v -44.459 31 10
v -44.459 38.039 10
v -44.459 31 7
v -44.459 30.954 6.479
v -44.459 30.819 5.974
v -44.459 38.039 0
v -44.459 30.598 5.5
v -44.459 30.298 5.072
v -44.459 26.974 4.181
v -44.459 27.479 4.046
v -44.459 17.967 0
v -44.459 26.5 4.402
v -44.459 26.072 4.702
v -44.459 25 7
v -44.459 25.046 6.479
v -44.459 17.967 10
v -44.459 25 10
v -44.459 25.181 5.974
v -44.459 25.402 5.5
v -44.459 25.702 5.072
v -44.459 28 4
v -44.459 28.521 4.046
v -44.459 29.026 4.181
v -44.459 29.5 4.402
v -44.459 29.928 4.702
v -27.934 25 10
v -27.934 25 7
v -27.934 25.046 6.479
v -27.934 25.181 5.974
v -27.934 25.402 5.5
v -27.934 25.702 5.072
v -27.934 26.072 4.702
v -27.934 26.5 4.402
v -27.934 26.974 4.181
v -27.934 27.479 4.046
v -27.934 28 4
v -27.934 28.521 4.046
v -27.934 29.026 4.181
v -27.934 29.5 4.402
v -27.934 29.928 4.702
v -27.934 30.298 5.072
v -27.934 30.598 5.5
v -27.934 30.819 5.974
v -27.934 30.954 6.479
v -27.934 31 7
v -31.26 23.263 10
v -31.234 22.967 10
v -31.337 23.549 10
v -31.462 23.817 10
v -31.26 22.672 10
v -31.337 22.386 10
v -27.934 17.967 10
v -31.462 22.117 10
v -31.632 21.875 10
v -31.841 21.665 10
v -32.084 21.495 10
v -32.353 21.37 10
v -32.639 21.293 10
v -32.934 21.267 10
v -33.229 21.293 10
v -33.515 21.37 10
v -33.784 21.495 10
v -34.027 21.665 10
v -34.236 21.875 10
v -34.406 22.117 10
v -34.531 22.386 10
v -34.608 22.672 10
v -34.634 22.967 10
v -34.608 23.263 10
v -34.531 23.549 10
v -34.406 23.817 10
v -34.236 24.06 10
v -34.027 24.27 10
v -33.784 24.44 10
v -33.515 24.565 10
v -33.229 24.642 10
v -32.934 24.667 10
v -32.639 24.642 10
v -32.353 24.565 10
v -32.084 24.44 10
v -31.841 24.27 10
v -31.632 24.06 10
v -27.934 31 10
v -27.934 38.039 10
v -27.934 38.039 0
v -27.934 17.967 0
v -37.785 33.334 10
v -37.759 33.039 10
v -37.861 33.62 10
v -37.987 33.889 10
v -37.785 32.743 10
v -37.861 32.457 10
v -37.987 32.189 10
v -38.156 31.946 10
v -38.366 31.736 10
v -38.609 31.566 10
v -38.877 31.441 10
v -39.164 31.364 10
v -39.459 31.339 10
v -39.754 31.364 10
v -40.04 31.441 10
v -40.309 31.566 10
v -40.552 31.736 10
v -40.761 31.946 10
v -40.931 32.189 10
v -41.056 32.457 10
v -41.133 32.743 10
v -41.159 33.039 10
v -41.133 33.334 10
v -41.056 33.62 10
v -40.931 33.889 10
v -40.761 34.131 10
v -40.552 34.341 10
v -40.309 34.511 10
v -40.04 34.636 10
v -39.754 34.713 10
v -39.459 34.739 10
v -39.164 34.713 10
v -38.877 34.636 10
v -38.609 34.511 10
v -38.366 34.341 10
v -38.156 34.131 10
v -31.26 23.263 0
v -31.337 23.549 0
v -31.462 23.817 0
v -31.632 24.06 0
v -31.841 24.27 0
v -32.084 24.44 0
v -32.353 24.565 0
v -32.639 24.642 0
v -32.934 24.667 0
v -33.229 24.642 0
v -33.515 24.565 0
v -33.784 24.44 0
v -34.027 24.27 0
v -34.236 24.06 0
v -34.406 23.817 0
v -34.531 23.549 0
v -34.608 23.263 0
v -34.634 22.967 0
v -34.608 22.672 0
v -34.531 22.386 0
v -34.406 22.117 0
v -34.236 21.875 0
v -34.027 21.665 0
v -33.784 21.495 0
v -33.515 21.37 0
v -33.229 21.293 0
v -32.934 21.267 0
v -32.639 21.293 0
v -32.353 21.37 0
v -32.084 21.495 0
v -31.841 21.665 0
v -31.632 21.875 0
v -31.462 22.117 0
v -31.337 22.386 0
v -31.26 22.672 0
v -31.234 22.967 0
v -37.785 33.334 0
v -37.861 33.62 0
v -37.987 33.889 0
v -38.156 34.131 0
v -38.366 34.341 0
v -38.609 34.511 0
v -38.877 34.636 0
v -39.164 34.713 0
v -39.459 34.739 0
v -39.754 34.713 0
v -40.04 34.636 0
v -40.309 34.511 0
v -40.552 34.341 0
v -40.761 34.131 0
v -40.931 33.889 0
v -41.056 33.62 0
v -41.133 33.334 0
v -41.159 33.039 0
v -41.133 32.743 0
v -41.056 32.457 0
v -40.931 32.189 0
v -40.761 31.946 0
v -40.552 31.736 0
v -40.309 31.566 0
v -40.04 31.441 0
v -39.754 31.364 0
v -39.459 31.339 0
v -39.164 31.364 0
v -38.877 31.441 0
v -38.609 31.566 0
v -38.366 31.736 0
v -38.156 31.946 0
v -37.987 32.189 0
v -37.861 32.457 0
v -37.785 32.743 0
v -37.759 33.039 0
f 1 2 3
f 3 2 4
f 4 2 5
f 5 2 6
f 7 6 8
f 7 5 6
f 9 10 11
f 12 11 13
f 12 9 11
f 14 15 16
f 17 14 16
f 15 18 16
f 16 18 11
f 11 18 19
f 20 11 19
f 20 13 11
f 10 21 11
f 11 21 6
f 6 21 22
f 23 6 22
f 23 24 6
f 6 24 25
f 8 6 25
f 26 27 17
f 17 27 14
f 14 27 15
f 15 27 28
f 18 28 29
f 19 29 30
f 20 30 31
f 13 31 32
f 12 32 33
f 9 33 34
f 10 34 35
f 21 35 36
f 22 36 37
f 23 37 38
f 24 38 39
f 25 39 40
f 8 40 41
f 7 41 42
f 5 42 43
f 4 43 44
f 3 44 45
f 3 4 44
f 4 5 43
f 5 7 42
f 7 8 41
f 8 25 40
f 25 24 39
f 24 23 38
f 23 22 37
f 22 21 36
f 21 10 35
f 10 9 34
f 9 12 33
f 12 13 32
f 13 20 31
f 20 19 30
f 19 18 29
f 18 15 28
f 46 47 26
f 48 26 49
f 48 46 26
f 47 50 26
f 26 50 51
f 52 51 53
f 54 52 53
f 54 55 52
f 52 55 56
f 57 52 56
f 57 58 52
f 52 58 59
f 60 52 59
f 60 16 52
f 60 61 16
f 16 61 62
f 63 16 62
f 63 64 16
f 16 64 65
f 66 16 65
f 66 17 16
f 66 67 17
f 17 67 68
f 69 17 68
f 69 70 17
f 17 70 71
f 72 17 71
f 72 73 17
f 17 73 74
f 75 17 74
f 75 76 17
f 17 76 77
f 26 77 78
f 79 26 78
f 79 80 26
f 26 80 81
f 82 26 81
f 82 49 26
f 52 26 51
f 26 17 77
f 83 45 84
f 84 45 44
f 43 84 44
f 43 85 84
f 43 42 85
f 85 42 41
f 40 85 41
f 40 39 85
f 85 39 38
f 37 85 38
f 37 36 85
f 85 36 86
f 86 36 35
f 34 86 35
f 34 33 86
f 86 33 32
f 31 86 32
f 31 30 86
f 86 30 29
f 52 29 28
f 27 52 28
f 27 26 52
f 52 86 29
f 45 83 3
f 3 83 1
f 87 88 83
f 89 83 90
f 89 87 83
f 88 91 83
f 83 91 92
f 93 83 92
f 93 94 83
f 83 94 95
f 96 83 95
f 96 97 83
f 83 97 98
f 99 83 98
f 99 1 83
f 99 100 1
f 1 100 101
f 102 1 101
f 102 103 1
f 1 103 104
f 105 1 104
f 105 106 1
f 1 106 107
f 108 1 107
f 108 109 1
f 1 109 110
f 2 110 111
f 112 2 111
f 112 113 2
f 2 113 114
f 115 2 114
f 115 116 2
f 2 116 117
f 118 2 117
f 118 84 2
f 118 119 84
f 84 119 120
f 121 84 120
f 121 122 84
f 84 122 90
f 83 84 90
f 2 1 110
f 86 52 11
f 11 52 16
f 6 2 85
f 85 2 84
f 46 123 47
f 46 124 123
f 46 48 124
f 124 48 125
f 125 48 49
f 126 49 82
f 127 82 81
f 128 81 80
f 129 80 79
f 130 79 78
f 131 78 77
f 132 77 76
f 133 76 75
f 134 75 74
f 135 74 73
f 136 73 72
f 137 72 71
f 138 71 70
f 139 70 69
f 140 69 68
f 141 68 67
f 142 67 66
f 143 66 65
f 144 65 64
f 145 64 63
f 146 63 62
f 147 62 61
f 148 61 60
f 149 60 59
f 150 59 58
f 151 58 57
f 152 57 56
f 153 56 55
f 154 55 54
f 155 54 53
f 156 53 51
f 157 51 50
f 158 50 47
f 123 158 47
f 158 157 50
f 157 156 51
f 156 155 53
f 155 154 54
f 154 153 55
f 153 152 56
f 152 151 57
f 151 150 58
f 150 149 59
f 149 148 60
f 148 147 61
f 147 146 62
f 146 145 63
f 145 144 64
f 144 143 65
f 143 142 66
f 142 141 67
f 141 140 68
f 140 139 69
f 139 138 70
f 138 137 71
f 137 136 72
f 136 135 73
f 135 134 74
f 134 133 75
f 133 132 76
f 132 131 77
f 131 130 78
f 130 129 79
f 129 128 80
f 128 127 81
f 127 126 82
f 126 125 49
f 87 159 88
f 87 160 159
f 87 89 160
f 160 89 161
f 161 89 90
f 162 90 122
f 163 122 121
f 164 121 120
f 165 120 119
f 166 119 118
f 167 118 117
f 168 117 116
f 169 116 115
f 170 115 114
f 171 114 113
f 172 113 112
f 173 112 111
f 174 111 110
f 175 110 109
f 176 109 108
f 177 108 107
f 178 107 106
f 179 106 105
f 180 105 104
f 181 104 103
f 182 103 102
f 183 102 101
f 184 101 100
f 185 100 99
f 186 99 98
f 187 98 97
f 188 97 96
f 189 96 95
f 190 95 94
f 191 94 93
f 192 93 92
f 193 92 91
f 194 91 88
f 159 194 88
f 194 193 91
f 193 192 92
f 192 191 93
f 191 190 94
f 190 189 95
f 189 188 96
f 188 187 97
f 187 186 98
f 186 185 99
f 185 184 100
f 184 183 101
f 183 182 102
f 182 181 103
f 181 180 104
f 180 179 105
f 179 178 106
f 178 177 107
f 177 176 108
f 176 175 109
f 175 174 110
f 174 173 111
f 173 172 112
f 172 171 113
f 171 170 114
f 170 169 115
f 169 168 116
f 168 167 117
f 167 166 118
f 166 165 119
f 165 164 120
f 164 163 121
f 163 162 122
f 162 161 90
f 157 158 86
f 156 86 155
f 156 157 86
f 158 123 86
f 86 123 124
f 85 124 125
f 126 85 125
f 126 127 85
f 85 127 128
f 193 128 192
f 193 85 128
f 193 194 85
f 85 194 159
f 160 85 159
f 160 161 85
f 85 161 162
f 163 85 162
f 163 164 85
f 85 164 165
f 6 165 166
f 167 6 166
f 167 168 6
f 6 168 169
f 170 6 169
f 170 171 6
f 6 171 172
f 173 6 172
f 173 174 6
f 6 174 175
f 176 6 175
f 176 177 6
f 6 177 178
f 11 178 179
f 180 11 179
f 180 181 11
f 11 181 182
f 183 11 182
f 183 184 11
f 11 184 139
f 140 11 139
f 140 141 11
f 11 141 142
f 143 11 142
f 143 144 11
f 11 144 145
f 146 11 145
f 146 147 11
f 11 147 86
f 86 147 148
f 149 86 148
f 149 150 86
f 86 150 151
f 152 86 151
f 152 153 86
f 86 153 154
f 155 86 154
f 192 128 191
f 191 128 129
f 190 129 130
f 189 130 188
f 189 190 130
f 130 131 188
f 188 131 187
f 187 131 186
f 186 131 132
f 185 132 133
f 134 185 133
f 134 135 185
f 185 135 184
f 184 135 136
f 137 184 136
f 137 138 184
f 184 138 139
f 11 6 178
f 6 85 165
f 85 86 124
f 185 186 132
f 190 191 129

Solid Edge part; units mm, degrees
sketch "Sketch1" plane through (0, 0, 0) normal (0, 0, 1) x (1, 0, 0)
  circle A0 centre (-32.934, 22.9674) radius 1.7
  line L0 (-44.4588, 17.9674) -> (-27.934, 17.9674)
  line L1 (-27.934, 17.9674) -> (-27.934, 38.0385)
  line L2 (-27.934, 38.0385) -> (-44.4588, 38.0385)
  line L3 (-44.4588, 38.0385) -> (-44.4588, 17.9674)
  circle A1 centre (-39.4588, 33.0385) radius 1.7
  dimension "D1" = 5
  dimension "D2" = 5
  dimension "D3" = 5
  dimension "D4" = 5
extrude "Protrusion1" add sketch "Sketch1" along normal blind 10
sketch "Sketch2" plane through (-44.4588, 28.0029, 5) normal (-1, 0, 0) x (0, -1, 0)
  line L0 (-2.9971, 2) -> (-2.9971, 7.3405)
  line L1 (-2.9971, 7.3405) -> (3.0029, 7.3405)
  line L2 (3.0029, 7.3405) -> (3.0029, 2)
  arc A0 (3.0029, 2) -> (-2.9971, 2) centre (0.0029, 2) cw
extrude "Cutout1" cut sketch "Sketch2" against normal through all
